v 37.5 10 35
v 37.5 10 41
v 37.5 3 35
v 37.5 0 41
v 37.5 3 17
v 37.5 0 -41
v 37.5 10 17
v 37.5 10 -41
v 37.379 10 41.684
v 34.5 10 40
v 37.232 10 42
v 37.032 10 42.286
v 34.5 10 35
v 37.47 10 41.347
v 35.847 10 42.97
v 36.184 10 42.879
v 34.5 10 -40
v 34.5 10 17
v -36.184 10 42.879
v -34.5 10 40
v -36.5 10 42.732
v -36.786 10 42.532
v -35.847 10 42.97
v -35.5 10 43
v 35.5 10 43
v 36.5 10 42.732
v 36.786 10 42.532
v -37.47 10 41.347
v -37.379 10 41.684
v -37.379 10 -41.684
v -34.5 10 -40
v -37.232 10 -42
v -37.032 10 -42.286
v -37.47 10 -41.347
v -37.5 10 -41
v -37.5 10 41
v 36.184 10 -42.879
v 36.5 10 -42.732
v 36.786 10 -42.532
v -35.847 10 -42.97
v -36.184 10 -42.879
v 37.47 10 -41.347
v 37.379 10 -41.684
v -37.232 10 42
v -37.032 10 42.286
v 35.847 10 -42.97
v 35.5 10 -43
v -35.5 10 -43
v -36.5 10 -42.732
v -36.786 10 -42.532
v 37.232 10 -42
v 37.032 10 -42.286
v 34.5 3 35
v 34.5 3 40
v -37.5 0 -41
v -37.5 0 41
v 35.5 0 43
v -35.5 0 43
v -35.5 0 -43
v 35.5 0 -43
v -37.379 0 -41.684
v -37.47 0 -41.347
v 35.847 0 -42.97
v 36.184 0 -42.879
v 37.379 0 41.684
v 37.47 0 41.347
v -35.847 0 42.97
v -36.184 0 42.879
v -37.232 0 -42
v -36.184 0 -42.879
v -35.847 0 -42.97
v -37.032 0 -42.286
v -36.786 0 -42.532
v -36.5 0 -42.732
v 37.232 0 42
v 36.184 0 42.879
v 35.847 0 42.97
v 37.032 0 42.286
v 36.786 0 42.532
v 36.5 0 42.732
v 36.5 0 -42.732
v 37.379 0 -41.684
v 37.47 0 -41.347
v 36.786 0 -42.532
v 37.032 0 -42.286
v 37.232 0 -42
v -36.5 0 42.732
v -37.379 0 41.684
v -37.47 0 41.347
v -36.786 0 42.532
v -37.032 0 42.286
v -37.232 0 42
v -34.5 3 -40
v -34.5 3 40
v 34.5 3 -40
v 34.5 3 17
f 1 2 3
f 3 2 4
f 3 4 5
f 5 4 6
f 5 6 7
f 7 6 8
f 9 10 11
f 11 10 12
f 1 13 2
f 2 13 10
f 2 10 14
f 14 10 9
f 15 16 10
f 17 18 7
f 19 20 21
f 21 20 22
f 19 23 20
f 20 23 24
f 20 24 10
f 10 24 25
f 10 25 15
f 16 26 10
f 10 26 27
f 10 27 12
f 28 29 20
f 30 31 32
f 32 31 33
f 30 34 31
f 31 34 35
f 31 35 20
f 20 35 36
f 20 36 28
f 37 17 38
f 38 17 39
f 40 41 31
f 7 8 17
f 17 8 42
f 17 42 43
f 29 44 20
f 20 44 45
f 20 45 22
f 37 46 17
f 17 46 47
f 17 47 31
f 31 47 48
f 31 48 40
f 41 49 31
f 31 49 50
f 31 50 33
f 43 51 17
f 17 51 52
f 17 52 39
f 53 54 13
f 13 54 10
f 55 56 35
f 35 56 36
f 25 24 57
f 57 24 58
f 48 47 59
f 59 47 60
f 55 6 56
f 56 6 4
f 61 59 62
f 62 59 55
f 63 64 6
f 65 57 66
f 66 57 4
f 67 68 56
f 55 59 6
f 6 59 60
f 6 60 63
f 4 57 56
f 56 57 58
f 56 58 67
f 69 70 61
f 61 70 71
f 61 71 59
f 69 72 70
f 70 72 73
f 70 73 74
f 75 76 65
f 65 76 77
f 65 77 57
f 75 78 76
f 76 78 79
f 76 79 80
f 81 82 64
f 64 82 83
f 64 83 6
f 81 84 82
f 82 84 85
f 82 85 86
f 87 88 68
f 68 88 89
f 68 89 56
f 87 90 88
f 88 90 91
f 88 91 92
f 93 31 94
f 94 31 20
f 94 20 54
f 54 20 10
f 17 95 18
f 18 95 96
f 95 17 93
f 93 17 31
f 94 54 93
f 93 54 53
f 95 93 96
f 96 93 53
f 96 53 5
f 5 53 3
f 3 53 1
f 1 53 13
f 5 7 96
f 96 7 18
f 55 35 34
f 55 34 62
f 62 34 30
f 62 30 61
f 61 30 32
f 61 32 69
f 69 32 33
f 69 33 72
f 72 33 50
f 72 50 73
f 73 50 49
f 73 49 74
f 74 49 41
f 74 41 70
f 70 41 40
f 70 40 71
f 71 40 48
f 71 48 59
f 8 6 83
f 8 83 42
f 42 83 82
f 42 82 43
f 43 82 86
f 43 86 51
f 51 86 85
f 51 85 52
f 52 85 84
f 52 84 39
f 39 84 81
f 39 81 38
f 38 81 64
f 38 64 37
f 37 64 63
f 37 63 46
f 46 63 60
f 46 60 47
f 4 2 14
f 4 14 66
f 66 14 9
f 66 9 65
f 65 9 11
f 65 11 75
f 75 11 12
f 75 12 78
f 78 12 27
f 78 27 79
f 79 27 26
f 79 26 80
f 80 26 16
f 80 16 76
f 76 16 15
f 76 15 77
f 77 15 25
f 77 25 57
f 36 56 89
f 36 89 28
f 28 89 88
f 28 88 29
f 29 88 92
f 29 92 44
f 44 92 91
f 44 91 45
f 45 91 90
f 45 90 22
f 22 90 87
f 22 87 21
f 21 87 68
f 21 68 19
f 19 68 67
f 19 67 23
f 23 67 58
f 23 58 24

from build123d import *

# Parameters (mm, degrees)
SKETCH1_W           = 75
SKETCH1_H           = 86
BOSS_EXTRUDE1_DEPTH = 3
SKETCH1_4_W         = 75
SKETCH1_4_H         = 86
SKETCH1_4_W_2       = 69
SKETCH1_4_H_2       = 80
BOSS_EXTRUDE2_DEPTH = 10
SKETCH2_W           = 18
SKETCH2_H           = 7
CUT_EXTRUDE1_DEPTH  = 10
FILLET1_R           = 2


with BuildPart() as part:
    # Sketch1 → Boss-Extrude1 (new body)
    with BuildSketch(Plane(origin=(0, 0, 0), x_dir=(1, 0, 0), z_dir=(0, 1, 0))):
        Rectangle(SKETCH1_W, SKETCH1_H)
    extrude(amount=BOSS_EXTRUDE1_DEPTH)

    # Sketch1<4> → Boss-Extrude2 (add)
    with BuildSketch(Plane(origin=(0, 0, 0), x_dir=(1, 0, 0), z_dir=(0, 1, 0))):
        Rectangle(SKETCH1_4_W, SKETCH1_4_H)
        Rectangle(SKETCH1_4_W_2, SKETCH1_4_H_2, mode=Mode.SUBTRACT)
    extrude(amount=BOSS_EXTRUDE2_DEPTH)

    # Sketch2 → Cut-Extrude1 (cut)
    with BuildSketch(Plane(origin=(37.5, 0, 0), x_dir=(0, 0, -1), z_dir=(1, 0, 0))):
        with Locations((-26, 6.5)):
            Rectangle(SKETCH2_W, SKETCH2_H)
    extrude(amount=-CUT_EXTRUDE1_DEPTH, mode=Mode.SUBTRACT)

    # Fillet1
    fillet1_edges = [part.edges().sort_by_distance(p)[0] for p in [
        (-37.5, 5, -43),
        (37.5, 5, -43),
        (37.5, 5, 43),
        (-37.5, 5, 43),
    ]]
    fillet(fillet1_edges, radius=FILLET1_R)


solid = part.part
